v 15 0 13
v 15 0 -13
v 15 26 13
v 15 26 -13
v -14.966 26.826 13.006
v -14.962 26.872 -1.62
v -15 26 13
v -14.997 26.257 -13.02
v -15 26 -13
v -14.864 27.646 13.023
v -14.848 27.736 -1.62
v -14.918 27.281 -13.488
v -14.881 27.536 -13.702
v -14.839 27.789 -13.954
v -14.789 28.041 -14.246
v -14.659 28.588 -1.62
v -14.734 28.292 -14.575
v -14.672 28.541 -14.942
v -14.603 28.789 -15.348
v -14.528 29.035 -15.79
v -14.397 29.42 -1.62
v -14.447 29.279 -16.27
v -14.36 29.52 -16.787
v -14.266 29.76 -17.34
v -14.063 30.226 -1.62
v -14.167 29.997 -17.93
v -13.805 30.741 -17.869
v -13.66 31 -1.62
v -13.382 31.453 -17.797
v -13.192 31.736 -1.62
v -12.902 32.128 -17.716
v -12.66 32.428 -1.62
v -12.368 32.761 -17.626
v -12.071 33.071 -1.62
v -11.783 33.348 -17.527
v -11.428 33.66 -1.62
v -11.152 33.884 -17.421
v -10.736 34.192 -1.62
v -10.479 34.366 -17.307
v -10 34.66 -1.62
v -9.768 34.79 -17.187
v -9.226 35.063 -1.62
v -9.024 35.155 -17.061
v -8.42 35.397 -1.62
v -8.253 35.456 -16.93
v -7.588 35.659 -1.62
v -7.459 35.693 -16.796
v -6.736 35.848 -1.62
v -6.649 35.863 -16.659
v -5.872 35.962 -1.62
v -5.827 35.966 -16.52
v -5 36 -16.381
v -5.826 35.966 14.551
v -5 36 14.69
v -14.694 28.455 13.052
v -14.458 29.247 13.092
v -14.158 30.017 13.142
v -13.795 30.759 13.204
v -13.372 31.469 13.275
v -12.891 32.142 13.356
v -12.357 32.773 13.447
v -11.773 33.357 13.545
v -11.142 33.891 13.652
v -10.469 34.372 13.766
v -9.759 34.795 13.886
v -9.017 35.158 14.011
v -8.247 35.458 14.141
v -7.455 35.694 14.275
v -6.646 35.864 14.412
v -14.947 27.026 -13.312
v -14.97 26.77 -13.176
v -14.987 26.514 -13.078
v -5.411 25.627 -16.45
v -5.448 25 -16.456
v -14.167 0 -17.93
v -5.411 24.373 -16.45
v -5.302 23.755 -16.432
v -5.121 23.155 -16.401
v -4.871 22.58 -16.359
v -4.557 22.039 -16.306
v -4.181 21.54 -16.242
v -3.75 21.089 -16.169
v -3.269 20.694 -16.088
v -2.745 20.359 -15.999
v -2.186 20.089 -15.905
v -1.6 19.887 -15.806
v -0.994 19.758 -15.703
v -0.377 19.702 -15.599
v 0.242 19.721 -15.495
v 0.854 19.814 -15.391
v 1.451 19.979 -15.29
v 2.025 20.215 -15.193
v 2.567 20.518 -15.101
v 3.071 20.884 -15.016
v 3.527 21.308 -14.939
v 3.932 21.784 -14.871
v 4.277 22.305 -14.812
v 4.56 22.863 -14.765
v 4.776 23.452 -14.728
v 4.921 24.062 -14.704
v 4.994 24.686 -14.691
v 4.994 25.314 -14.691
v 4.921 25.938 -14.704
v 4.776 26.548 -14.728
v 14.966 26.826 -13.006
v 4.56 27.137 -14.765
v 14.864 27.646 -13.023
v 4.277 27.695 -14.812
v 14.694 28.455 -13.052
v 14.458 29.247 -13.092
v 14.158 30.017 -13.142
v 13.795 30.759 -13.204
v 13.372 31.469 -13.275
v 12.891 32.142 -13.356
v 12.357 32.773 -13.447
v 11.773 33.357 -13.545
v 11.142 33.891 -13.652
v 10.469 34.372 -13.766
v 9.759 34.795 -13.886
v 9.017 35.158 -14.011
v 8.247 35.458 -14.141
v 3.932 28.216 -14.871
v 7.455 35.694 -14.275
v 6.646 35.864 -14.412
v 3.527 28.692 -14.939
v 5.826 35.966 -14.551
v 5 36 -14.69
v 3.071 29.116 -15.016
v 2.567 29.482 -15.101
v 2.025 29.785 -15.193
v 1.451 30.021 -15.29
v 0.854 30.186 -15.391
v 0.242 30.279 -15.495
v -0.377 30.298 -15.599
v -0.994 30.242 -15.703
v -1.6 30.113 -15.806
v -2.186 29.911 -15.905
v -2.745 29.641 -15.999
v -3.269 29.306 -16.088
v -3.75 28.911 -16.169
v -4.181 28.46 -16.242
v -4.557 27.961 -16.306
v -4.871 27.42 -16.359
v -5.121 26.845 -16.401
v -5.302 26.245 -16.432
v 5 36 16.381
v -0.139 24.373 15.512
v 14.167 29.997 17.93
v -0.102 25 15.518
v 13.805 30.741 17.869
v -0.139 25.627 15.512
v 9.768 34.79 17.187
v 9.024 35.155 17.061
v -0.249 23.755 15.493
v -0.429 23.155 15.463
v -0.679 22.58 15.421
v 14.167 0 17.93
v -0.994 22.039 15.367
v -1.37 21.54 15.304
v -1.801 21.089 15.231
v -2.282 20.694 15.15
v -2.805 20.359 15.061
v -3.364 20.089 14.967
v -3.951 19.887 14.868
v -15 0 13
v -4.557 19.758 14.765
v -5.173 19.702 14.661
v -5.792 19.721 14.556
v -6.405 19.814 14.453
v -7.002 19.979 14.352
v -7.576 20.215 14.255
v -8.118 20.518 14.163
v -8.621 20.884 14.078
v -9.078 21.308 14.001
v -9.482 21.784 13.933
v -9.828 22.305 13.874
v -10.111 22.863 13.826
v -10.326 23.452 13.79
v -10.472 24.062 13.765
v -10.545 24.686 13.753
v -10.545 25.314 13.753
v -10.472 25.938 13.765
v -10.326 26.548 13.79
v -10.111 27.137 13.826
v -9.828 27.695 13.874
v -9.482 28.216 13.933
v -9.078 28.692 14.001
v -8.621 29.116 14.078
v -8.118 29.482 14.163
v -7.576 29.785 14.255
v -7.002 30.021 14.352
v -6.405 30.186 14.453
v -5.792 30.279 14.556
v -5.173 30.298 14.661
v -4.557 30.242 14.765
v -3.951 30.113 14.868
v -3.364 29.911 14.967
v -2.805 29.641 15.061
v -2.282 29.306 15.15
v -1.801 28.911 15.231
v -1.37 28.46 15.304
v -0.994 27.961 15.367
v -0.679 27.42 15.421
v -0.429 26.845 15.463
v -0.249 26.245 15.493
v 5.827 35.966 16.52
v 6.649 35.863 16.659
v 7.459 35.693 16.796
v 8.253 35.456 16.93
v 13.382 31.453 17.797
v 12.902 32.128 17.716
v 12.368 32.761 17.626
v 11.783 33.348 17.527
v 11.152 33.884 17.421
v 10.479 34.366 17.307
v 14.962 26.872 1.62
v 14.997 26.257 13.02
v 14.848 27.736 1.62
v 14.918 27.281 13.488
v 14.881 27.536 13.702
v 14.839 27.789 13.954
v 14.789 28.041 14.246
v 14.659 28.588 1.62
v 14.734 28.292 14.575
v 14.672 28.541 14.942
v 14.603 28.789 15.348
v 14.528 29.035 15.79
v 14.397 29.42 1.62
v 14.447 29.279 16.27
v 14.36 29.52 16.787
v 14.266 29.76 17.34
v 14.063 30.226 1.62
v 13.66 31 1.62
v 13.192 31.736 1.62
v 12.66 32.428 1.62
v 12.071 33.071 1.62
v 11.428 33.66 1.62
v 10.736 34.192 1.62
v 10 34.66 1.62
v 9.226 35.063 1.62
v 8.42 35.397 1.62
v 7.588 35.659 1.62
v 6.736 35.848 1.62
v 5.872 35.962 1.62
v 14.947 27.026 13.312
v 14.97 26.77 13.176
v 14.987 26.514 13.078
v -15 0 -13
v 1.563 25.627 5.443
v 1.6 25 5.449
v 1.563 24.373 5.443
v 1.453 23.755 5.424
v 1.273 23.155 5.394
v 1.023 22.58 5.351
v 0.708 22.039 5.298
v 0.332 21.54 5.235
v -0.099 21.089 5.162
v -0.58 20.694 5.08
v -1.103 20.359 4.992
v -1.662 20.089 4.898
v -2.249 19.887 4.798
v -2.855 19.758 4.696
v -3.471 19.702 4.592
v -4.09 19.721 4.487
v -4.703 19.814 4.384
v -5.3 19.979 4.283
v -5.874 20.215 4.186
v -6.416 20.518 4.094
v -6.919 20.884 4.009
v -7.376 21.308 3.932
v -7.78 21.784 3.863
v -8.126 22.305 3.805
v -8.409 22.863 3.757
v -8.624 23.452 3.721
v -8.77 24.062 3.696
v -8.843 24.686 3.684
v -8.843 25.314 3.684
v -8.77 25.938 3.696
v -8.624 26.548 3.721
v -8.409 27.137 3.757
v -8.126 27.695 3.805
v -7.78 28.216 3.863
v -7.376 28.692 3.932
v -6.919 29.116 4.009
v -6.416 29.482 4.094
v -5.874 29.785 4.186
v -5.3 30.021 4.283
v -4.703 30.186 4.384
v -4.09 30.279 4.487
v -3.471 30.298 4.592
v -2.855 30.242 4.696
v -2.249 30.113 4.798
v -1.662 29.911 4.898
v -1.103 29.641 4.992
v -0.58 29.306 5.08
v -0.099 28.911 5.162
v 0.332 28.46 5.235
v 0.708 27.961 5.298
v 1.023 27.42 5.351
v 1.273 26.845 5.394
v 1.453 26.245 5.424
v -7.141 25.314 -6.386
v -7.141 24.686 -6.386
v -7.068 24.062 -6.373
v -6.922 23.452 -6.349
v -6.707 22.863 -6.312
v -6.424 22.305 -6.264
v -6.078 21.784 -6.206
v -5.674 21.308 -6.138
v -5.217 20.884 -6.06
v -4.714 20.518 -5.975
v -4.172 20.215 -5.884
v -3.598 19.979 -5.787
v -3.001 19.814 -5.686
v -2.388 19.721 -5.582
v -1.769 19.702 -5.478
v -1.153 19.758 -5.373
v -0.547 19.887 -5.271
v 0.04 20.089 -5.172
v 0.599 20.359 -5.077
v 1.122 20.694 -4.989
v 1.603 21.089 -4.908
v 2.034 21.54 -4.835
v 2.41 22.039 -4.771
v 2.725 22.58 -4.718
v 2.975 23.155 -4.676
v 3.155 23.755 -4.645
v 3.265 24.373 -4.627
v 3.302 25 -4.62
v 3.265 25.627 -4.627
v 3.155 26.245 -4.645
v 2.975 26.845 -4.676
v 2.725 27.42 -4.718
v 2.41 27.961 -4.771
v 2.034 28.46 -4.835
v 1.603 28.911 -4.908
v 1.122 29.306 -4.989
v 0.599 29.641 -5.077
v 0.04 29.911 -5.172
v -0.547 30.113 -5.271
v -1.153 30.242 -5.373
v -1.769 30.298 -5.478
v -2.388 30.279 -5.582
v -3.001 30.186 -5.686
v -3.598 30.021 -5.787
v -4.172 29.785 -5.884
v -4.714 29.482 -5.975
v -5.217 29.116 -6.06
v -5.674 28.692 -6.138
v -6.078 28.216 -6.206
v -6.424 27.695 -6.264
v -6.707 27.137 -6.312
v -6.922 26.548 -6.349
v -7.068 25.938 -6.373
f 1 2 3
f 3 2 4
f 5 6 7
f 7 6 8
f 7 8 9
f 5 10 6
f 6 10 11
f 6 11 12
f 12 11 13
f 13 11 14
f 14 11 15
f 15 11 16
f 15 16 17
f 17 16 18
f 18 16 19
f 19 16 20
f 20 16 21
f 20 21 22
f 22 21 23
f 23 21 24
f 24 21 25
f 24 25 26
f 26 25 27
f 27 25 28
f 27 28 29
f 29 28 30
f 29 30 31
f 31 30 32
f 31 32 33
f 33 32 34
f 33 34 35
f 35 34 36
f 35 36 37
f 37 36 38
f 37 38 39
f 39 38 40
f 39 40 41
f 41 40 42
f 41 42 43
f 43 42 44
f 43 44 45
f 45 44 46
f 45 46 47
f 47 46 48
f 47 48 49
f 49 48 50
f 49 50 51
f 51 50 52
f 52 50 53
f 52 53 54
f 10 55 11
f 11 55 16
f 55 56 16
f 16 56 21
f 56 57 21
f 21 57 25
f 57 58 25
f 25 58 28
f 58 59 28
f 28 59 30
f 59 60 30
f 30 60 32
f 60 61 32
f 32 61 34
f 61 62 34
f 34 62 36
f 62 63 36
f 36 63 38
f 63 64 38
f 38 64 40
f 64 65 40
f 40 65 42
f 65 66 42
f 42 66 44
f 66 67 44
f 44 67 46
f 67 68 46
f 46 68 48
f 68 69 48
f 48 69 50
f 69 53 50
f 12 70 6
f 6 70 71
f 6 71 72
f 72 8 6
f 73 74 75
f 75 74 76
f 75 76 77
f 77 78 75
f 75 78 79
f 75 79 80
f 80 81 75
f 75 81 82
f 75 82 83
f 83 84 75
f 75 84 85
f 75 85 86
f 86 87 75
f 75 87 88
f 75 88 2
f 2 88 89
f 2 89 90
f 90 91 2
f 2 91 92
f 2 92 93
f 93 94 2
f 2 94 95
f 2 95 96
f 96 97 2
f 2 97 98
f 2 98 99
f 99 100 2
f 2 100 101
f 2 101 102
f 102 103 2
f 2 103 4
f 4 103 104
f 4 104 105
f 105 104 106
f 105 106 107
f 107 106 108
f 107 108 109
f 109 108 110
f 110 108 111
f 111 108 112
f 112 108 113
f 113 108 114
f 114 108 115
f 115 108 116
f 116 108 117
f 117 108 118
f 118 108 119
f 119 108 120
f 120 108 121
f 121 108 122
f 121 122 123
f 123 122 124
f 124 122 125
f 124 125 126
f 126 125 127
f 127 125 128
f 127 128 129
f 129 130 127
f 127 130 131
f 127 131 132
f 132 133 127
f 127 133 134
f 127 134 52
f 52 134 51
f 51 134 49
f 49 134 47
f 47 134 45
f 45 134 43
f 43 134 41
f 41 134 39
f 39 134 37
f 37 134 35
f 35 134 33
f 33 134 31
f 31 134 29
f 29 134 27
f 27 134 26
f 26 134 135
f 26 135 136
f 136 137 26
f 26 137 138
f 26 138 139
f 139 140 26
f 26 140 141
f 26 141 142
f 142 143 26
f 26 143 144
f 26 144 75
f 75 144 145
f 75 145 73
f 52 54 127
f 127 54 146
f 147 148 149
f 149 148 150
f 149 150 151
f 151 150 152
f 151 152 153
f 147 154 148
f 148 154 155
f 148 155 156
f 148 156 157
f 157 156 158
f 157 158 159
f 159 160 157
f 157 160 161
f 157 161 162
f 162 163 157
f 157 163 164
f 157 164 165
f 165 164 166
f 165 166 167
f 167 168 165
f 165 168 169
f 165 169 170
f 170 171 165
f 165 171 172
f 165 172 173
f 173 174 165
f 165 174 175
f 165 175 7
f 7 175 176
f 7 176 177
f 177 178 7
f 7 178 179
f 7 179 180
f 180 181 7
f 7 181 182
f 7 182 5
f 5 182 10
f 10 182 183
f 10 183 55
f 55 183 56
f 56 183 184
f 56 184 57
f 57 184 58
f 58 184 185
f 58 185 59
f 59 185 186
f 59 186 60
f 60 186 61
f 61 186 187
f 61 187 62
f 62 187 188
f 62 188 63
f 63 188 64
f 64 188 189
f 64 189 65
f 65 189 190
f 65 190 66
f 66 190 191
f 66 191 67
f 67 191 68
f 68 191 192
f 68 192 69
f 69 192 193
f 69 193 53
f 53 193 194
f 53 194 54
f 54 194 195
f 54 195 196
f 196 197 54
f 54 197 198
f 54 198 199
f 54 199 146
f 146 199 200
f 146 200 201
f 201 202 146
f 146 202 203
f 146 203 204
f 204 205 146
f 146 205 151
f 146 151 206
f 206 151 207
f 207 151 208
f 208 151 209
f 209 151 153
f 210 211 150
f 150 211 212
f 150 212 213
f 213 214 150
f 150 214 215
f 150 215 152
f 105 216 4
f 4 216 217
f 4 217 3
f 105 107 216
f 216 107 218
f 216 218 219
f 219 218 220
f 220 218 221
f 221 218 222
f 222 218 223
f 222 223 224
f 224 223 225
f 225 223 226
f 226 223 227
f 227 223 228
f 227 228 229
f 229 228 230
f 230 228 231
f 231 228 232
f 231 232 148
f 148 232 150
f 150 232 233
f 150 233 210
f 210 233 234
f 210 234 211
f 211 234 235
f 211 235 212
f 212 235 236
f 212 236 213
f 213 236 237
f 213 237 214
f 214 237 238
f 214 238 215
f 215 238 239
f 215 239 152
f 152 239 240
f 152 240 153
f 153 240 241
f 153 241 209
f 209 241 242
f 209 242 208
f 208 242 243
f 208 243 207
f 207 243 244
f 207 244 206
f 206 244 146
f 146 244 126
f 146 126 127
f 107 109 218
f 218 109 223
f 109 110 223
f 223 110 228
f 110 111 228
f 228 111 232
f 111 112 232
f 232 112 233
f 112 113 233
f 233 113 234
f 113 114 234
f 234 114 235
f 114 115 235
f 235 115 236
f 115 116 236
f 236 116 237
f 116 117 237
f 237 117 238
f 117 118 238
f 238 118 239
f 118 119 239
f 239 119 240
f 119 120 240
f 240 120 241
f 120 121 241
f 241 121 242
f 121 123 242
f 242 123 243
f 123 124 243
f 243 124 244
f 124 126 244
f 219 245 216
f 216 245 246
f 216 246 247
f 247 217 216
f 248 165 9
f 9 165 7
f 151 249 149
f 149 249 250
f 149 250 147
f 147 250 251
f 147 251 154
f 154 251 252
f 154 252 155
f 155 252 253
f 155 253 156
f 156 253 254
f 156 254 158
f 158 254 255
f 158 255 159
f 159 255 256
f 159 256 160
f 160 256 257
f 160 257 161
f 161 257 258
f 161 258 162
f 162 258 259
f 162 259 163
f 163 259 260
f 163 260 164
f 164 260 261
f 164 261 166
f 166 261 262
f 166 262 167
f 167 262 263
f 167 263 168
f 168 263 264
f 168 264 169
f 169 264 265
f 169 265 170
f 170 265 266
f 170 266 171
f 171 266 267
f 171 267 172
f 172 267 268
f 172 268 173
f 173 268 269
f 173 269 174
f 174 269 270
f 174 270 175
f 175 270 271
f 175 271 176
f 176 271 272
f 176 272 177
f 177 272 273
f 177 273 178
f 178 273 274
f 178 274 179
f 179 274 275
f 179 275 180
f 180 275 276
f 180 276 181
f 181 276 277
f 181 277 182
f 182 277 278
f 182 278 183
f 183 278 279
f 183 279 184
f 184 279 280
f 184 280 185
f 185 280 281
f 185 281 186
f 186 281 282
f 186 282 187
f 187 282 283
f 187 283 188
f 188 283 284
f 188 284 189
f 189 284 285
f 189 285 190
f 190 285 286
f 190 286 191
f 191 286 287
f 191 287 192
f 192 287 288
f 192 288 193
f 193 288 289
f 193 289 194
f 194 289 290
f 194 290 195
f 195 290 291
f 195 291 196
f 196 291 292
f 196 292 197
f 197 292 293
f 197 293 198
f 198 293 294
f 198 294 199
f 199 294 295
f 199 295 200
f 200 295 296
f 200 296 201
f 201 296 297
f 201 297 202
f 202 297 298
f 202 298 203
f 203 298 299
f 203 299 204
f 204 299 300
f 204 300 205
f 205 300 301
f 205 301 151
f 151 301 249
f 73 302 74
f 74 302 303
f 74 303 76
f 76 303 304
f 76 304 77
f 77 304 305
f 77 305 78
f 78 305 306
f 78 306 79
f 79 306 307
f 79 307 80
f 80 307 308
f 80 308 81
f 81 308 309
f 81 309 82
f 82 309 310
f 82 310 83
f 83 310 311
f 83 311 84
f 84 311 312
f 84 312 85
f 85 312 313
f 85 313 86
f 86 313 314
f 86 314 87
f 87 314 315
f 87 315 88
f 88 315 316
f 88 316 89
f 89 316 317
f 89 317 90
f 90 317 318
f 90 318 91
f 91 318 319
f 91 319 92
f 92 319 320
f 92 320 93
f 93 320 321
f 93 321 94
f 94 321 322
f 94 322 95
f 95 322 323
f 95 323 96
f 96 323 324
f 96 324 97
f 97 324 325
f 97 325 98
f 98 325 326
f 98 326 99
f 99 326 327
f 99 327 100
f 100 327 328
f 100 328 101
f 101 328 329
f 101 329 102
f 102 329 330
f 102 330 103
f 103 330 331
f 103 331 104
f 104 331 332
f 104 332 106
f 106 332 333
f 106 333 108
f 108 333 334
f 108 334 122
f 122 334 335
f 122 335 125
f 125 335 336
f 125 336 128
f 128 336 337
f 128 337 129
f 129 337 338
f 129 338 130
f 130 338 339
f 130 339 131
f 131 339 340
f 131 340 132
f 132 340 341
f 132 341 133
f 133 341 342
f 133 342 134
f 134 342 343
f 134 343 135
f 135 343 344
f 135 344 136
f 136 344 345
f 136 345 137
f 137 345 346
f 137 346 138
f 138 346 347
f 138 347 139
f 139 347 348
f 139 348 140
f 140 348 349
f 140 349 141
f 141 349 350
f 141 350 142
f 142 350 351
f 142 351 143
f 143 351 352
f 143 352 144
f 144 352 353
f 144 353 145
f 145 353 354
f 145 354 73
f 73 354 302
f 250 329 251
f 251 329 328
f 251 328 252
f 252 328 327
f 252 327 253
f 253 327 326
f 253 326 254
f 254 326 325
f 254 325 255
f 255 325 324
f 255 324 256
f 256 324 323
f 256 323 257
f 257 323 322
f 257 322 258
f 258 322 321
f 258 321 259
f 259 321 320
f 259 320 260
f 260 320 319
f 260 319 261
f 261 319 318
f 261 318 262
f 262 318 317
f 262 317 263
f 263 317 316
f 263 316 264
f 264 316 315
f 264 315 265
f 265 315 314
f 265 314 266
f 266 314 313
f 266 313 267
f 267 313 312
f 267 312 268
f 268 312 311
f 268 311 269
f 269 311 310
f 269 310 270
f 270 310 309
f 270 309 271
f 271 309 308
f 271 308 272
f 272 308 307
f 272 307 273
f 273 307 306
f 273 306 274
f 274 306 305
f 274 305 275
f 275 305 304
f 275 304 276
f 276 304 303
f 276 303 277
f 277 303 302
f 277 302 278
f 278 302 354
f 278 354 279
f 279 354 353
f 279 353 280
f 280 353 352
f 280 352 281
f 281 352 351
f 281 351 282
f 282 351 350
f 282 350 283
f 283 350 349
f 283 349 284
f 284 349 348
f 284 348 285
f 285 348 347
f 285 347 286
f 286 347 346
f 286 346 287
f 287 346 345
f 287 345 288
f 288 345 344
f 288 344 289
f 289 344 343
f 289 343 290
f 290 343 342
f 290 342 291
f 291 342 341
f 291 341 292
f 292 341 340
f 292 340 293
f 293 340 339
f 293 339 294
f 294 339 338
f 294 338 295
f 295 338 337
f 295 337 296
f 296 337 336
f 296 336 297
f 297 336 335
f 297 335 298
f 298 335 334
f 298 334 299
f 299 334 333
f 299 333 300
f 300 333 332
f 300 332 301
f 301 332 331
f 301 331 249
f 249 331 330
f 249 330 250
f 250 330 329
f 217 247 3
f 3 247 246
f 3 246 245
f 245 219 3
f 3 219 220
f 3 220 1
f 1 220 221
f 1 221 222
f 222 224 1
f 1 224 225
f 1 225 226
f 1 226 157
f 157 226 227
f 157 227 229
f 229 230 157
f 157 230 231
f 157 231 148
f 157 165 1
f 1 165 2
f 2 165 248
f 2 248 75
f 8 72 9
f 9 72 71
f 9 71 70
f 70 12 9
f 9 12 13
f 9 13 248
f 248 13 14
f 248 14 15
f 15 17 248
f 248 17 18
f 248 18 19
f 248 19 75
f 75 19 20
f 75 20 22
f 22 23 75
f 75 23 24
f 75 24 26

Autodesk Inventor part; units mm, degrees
ref_plane "YZ Plane" through (0, 0, 0) normal (1, 0, 0) x (0, 1, 0)
ref_plane "XZ Plane" through (0, 0, 0) normal (0, 1, 0) x (-1, 0, 0)
ref_plane "XY Plane" through (0, 0, 0) normal (0, 0, 1) x (1, 0, 0)
sketch "BaseSC" plane through (0, 0, 0) normal (0, 1, 0) x (-1, 0, 0)
  line L0 (15, 13) -> (-15, 13)
  line L1 (-15, 13) -> (-15, -13)
  line L2 (-15, -13) -> (15, -13)
  line L3 (15, -13) -> (15, 13)
  line L4 (15, 13) -> (-15, -13) construction
  line L5 (-15, 13) -> (15, -13) construction
  line L6 (15, 13) -> (14.1667, 17.9301)
  line L7 (14.1667, 17.9301) -> (-15, 13)
  line L8 (0, 0) -> (8.3423, 0)
  line L9 (15, -13) -> (14.1667, -17.9301)
  line L10 (14.1667, -17.9301) -> (-15, -13)
  line L11 (-15, 13) -> (-14.1667, 17.9301)
  line L12 (-14.1667, 17.9301) -> (15, 13)
  dimension "d0" = 30
  dimension "d1" = 26
  dimension "d9" = 5
  dimension "d10" = 90
  dimension "d17" = 5
  dimension "d18" = 90
sketch "スケッチ2" plane through (0, 0, 0) normal (0, 0, 1) x (1, 0, 0)
  point P0 (0, 0)
extrude "押し出し1" add sketch "BaseSC" against normal blind 30 contours L3 L2 L1 L0
sketch "スケッチ3" plane through (15, 0, 13) normal (1, 0, 0) x (0, 0, -1)
  line L0 (2.5, -1.5742) -> (23.5, -1.5742)
  line L1 (23.5, -1.5742) -> (23.5, -28.5742)
  line L2 (23.5, -28.5742) -> (2.5, -28.5742)
  line L3 (2.5, -28.5742) -> (2.5, -1.5742)
  line L4 (2.5, -1.5742) -> (23.5, -28.5742) construction
  line L5 (23.5, -1.5742) -> (2.5, -28.5742) construction
  ellipse E0 centre (13, -15.0742) end of major axis (23.5, -15.0742) minor radius 13.5
  point P0 (13, 0)
  dimension "d5" = 21
  dimension "d6" = 27
extrude "押し出し2" cut sketch "スケッチ3" against normal through all contours E0
extrude "押し出し3" add sketch "BaseSC" along normal blind 36 contours L3 L2 L1 L0 | L9 L10 L2
extrude "押し出し5" add sketch "BaseSC" along normal blind 36 contours L0 L7 L12 | L11 L12 L7
sketch "スケッチ5" plane through (-14.1667, 0, -17.9301) normal (0.1666667, 0, -0.9860133) x (-0.9860133, 0, -0.1666667)
  circle A0 centre (-14.1422, 25) radius 5.3
  line L0 (-29.5804, 0) -> (0, 0) projected
  point P0 (-16.9569, 0)
  dimension "d21" = 10.6
  dimension "d22" = 25
extrude "押し出し6" cut sketch "スケッチ5" against normal through all
sketch "スケッチ6" plane through (0, -30, 0) normal (0, -1, 0) x (1, 0, 0)
  line L0 (15, -1) -> (-15, -1)
  line L1 (-15, -1) -> (-15, 1)
  line L2 (-15, 1) -> (15, 1)
  line L3 (15, 1) -> (15, -1)
  line L4 (15, -1) -> (-15, 1) construction
  line L5 (-15, -1) -> (15, 1) construction
  point P0 (0, 0)
  dimension "d25" = 30
  dimension "d26" = 2
extrude "押し出し7" cut sketch "スケッチ6" against normal blind 5
fillet "フィレット1" radius 10 2 edges at (15, 36, 0) (-15, 36, 0)
sketch "スケッチ7" plane through (-15, -30, 13) normal (0, 0, 1) x (1, 0, 0)
  line L0 (30, 30) -> (0, 30) projected
  line L1 (0, 0) -> (0, 30) projected
  line L2 (30, 0) -> (0, 0) projected
  line L3 (30, 30) -> (30, 0) projected
  point P0 (15, 30)
extrude "押し出し8" cut sketch "スケッチ7" against normal through all
properties part number "default"
